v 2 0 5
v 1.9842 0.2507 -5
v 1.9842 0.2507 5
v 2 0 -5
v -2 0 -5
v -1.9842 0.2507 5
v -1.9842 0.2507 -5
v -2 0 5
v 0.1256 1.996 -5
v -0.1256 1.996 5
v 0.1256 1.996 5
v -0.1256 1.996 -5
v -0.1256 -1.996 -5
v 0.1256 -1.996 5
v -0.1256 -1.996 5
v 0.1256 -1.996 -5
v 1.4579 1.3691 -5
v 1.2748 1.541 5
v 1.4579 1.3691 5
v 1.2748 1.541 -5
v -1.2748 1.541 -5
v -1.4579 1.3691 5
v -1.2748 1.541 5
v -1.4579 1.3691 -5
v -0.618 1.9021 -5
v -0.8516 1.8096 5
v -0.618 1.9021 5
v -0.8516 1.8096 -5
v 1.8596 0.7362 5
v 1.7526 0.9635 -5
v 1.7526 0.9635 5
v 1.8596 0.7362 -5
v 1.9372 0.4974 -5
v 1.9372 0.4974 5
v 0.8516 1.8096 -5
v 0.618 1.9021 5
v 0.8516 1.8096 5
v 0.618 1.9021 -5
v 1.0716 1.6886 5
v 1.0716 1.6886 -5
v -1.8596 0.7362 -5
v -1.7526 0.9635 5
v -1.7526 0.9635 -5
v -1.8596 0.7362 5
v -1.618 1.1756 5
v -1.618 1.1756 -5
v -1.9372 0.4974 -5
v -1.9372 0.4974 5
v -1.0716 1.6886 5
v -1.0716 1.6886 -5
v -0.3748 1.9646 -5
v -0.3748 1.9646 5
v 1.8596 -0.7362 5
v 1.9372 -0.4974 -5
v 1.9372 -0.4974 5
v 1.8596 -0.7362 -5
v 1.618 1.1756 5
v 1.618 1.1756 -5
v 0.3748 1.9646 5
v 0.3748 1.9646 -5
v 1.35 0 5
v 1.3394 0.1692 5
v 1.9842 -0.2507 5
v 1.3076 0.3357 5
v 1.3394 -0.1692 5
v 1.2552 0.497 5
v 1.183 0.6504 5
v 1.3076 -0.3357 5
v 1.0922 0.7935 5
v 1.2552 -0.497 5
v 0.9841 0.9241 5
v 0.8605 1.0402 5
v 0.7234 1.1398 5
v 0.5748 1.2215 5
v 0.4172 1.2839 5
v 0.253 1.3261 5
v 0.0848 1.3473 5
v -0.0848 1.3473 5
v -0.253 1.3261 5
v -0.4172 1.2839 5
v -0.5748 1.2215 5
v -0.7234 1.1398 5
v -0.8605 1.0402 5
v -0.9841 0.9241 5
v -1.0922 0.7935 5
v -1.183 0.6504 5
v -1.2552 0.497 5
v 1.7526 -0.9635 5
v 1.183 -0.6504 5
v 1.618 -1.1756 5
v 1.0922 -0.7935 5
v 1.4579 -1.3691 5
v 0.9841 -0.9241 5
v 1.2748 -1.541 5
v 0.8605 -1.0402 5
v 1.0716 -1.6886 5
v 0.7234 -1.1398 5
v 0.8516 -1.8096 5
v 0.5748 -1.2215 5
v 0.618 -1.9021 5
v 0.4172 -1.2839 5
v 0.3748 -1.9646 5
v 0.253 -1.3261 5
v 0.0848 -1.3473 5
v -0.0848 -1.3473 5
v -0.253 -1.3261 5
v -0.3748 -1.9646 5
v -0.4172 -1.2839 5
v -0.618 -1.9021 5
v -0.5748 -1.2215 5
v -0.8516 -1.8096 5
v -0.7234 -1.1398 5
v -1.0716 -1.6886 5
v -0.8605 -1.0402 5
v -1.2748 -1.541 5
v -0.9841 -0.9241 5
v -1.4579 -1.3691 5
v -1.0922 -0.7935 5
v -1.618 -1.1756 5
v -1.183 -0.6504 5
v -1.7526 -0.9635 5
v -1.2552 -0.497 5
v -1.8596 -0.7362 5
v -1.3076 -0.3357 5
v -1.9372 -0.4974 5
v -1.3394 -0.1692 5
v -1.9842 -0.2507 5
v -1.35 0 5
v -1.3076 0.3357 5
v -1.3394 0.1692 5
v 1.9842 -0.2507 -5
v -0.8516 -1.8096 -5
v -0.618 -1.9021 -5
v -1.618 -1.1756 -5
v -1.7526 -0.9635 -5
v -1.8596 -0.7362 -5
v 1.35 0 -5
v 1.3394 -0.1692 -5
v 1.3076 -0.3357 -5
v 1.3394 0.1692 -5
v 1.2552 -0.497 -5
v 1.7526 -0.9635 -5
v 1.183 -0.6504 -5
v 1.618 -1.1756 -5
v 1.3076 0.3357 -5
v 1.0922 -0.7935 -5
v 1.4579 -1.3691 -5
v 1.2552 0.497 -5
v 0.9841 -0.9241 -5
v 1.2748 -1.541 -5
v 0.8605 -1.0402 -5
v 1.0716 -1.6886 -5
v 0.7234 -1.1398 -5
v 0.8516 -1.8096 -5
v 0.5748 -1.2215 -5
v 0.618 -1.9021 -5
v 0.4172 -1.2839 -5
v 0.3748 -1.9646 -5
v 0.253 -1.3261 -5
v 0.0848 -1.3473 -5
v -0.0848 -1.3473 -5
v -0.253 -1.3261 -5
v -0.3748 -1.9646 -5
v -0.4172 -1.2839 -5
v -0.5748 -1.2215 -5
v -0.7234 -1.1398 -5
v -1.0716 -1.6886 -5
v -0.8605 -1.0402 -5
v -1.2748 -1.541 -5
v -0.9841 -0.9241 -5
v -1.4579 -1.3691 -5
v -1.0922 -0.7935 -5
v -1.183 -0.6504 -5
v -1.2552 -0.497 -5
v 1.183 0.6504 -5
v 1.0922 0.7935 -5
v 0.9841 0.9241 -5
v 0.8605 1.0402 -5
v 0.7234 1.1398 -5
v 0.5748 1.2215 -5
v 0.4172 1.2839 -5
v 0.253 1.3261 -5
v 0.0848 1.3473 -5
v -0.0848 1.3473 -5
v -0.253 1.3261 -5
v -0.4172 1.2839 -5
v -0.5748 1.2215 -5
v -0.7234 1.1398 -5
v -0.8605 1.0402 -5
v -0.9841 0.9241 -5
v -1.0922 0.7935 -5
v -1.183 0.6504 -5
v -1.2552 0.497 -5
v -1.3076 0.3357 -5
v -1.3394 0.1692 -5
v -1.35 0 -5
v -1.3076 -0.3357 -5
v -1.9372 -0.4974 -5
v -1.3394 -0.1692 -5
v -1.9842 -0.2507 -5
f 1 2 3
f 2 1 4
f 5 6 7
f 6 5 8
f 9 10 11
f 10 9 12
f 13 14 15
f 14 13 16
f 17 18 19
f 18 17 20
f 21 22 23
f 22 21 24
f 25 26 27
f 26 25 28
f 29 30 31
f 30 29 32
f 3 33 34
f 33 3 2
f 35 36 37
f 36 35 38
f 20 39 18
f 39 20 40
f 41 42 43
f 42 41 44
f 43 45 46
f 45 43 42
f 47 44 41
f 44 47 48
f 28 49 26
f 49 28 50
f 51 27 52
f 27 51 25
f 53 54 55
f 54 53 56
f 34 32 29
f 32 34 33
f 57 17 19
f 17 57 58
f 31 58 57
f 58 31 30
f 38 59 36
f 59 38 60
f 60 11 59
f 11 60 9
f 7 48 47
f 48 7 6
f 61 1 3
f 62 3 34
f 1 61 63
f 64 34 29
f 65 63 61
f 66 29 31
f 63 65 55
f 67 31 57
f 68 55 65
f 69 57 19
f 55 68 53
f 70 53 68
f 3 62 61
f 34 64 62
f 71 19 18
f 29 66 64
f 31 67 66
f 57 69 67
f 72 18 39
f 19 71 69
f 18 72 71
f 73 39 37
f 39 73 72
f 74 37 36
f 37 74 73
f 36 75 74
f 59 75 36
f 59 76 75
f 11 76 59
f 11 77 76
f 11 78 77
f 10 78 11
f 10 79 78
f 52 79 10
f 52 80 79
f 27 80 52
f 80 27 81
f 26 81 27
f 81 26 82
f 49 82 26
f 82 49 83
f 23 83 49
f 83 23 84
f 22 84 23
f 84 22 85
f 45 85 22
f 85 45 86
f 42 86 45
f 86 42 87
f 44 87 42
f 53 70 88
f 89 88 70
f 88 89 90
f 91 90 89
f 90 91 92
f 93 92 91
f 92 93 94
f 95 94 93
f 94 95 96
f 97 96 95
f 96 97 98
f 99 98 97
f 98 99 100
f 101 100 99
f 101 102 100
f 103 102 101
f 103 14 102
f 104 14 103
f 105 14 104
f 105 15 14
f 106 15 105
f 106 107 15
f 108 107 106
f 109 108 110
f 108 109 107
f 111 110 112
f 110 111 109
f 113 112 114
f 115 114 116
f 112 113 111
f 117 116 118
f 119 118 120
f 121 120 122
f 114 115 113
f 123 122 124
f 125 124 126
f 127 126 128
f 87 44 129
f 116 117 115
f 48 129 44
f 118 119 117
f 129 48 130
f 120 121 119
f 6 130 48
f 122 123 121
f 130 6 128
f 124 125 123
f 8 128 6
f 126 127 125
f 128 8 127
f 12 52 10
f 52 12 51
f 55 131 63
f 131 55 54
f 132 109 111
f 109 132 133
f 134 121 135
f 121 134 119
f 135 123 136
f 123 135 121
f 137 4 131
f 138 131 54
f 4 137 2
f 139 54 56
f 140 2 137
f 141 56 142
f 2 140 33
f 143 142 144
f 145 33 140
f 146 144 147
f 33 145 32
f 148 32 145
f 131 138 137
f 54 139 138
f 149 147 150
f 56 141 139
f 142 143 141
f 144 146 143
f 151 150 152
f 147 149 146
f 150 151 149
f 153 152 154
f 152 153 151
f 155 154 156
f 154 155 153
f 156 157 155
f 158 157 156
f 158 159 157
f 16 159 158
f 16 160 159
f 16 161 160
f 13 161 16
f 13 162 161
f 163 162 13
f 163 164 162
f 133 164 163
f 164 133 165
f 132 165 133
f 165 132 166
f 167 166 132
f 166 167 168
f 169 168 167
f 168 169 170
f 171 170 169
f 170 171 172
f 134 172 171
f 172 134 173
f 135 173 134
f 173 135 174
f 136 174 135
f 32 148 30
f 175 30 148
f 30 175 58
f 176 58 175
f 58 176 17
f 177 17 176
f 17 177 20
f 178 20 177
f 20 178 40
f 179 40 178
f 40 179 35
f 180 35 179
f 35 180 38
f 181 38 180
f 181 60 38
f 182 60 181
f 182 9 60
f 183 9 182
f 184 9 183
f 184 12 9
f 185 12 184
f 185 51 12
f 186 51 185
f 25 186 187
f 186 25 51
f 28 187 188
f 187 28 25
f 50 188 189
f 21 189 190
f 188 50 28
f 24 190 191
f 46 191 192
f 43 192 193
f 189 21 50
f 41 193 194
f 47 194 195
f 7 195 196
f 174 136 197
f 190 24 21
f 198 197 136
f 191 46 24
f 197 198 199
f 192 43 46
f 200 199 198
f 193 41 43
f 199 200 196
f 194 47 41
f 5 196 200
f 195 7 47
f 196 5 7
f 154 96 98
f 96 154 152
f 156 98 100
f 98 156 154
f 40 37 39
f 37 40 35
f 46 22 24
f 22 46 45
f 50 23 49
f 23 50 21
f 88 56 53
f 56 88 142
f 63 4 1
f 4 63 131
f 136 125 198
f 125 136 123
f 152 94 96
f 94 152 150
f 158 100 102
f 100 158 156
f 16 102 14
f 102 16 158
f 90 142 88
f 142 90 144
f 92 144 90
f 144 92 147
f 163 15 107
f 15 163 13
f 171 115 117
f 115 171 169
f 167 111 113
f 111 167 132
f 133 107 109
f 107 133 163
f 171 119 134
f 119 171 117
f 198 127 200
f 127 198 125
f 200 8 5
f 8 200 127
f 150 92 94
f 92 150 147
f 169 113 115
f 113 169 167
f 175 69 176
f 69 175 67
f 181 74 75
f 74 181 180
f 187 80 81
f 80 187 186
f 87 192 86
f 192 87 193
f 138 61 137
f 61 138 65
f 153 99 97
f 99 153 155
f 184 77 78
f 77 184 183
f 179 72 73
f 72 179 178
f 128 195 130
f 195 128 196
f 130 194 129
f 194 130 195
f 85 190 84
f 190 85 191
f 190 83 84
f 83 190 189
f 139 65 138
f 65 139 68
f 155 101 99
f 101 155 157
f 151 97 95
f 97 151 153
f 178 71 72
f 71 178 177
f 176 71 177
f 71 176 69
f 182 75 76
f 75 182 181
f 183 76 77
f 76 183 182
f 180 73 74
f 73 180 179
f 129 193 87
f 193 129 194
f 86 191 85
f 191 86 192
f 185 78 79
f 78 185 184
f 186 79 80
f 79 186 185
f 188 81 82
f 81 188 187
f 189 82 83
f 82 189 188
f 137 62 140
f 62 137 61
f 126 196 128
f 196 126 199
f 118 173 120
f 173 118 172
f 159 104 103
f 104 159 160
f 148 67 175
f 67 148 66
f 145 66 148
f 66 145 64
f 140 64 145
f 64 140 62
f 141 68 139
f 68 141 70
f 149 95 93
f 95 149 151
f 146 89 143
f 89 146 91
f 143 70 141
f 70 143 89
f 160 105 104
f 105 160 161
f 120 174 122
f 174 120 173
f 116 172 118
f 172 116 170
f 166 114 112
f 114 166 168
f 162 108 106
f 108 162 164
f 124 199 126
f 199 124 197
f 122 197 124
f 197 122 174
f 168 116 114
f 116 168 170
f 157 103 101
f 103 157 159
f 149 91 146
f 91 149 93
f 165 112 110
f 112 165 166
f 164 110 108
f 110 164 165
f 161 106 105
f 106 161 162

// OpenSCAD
$fn = 50;


difference() {
	union() {
		translate(v = [0, 0, -5.0000000000]) {
			cylinder(h = 10, r = 2.0000000000);
		}
	}
	union() {
		translate(v = [0, 0, -100.0000000000]) {
			cylinder(h = 200, r = 1.3500000000);
		}
	}
}
